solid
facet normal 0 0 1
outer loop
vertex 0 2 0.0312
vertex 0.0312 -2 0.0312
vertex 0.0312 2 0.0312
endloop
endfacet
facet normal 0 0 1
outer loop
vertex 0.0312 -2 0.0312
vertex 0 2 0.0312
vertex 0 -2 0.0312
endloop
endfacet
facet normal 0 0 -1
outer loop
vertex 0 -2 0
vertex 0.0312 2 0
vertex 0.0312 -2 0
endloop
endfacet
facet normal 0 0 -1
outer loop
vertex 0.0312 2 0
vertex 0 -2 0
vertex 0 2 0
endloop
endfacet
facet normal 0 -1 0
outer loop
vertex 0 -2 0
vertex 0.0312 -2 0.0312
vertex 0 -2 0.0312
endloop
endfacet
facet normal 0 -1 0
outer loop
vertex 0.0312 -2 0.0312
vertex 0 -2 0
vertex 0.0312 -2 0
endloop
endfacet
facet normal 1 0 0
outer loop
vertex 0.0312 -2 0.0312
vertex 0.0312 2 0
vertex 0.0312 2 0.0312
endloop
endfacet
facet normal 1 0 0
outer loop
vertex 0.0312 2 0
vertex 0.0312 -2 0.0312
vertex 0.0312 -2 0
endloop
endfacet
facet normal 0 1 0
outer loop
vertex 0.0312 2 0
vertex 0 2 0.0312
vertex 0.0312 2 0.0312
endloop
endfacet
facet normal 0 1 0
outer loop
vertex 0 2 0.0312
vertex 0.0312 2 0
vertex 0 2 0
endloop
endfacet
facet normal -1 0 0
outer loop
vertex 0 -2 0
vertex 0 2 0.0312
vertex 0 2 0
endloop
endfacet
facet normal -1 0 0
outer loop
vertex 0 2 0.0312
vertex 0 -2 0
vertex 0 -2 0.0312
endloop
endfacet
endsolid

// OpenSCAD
// file: ../colors.scad
// colors.scad
// Credit: David Powell, OpenSCAN Forum



//group ABS_<colorname>
//	discription  common 3d printer ABS filament colors
// actual colours may need some tweaking

ABS_Nature =[0.8,0.8,0.8,0.8];
ABS_White =[0.9,0.9,0.9,1];
ABS_Black =[0.1,0.1,0.1,1];
ABS_Red = [0.7,0,0,1];
ABS_Green = [0,0.7,0,1];
ABS_Blue = [0,0,0.7,1];
ABS_Orange =[0.8,0.4,0,1];
ABS_Purple =[0.7,0,0.7,1];
ABS_Brown =[0.6,0.2,0.2,1];
ABS_Glow_Blue =[0,0,.99,1];
ABS_Flurescence_Green =[0,1,0,1];
ABS_Flurescence_Yellow = [0.9,0.9,0,1];

//group PLA_<colorname>
//	discription  common 3d printer PLA filament colors
// actual colours may need some tweaking

PLA_Nature =[0.8,0.8,0.8,0.8];
PLA_White =[0.9,0.9,0.9,1];
PLA_Black =[0.1,0.1,0.1,1];
PLA_Red = [0.7,0,0,1];
PLA_Green = [0,0.7,0,1];
PLA_Blue = [0,0,0.7,1];
PLA_Orange =[0.8,0.4,0,1];
PLA_Purple =[0.7,0,0.7,1];
PLA_Brown =[0.6,0.2,0.2,1];
PLA_Glow_Blue =[0,0,.99,1];
PLA_Flurescence_Green =[0,1,0,1];
PLA_Flurescence_Yellow = [0.9,0.9,0,1];

//group ANODIZED_<colorname>
//	discription  common aluminium anodized colors
// these don't seem to follow normal color tables as the process
// produces a color change difference to the named color
// dew to base metal
// actual colours may need some tweaking

ANODIZED_Red =[0.7,0,0,1];
ANODIZED_Gold =[0.8,0.8,0.0,1];
ANODIZED_Black =[0.1,0.1,0.1,1];
ANODIZED_Blue =[0,0,0.7,1];
ANODIZED_Green =[0,0.5,0,1];
ANODIZED_Gray =[0.4,0.4,0.4,1];
ANODIZED_Dark_Blue =[0,0.2,0.6,1];
ANODIZED_Lime_Green =[0,0.8,0,1];
ANODIZED_Purple =[0.5,0,0.7,1];		//more blue than purple
ANODIZED_Light_Blue =[0.4,0.4,1,1];
ANODIZED_Pink =[0.7,0,0.7,1];		//more purlpe than pink
ANODIZED_Orange =[0.9,0.5,0,1];
ANODIZED_Scandia_Gold =[0.9,0.6,0.3,1];
ANODIZED_Copper =[0.7,0.5,0,1];		//more brown than copper
ANODIZED_Clear =[0.7,0.7,0.9,1];	//natural aluminium color
ANODIZED_Light_Bronze =[0.4,0.4,0.3,1]; //more silver than bronze
ANODIZED_Gold_Nickel =[0.8,0.8,0.6,1];
ANODIZED_Brush_Nickel =[0.8,0.8,0.7,1];

//group METAL_<typename>
//	discription common metal colors
// colors need tweaking

METAL_Aluminium = [0.7,0.7,0.8,1];
METAL_Brass = [0.88,0.78,0.5,1];
METAL_Copper = [0.9,0.6,0.5,1];
METAL_Steel = [0.9,0.9,0.8,1];
METAL_Stainless = [0.8,0.8,0.7,1];
METAL_Titanium = [0.7,0.7,0.6,1];
METAL_Bronze = [0.9,0.4,0.4,1];
METAL_Gold = [0.9,0.9,0.0,1];
METAL_Silver = [0.8,0.8,0.8,1];
METAL_Iron = [0.6,0.6,0.6,1];

// group WOOD_<typename>
//	discription common wood colors
// probabaly wrong

WOOD_Oak = [0.4,0.2,0.2,1];
WOOD_Birch = [0.8,0.8,0.4,1];
WOOD_Red = [0.7,0.3,0.3,1];
WOOD_pine = [0.8,0.8,0.4,1];
WOOD_Beach = [0.8,0.6,0.3,1];
WOOD_Spruce = [0.8,0.8,0.7,1];
WOOD_Balsa = [0.95,0.86,0.73];

// group GLASS_<color>
//	discription common glass colors
// needs tweaking

GLASS_Clear = [0.8,0.8,0.8,0.2];
GLASS_Red = [0.8,0,0,0.4];
GLASS_Green = [0,0.8,0,.4];
GLASS_Blue = [0,0,0.8,.4];
GLASS_Brown = [0.5,0.3,0.1,.4];

CONCRETE = [210/255, 209/255, 205/255];
// file: MMlib/square_spar.scad
//####################################
// square_spar.scad
// (c) 2021 by Roie R. Black
//====================================


module square_spar(length=6,size=1/16) {
  translate([size/2, 0, size/2])
    cube([size,length,size], center=true);
}

square_spar(6,1/16);
// file: ../fin_data.scad
//#####################################
// fin-data.scad
// (c) 2021 by Roie R. Black
//=====================================
include <colors.scad>

fin_span = 2;
fin_chord = 4;
fin_radius = 1.5;
spar_size = 1/32;
fin_color = WOOD_Balsa;

//-------------------------------------
// calculated values

fin_le_length = fin_span - fin_radius - spar_size;
fin_te_length = fin_span -2*spar_size;
// main file
//########################################
// fin_rib1.scad
// (c) 2021 - Roie R. Black
//****************************************
include <../fin_data.scad>

use <MMlib/square_spar.scad>

module rib1() {
  square_spar(fin_chord, spar_size);
}

rib1();
